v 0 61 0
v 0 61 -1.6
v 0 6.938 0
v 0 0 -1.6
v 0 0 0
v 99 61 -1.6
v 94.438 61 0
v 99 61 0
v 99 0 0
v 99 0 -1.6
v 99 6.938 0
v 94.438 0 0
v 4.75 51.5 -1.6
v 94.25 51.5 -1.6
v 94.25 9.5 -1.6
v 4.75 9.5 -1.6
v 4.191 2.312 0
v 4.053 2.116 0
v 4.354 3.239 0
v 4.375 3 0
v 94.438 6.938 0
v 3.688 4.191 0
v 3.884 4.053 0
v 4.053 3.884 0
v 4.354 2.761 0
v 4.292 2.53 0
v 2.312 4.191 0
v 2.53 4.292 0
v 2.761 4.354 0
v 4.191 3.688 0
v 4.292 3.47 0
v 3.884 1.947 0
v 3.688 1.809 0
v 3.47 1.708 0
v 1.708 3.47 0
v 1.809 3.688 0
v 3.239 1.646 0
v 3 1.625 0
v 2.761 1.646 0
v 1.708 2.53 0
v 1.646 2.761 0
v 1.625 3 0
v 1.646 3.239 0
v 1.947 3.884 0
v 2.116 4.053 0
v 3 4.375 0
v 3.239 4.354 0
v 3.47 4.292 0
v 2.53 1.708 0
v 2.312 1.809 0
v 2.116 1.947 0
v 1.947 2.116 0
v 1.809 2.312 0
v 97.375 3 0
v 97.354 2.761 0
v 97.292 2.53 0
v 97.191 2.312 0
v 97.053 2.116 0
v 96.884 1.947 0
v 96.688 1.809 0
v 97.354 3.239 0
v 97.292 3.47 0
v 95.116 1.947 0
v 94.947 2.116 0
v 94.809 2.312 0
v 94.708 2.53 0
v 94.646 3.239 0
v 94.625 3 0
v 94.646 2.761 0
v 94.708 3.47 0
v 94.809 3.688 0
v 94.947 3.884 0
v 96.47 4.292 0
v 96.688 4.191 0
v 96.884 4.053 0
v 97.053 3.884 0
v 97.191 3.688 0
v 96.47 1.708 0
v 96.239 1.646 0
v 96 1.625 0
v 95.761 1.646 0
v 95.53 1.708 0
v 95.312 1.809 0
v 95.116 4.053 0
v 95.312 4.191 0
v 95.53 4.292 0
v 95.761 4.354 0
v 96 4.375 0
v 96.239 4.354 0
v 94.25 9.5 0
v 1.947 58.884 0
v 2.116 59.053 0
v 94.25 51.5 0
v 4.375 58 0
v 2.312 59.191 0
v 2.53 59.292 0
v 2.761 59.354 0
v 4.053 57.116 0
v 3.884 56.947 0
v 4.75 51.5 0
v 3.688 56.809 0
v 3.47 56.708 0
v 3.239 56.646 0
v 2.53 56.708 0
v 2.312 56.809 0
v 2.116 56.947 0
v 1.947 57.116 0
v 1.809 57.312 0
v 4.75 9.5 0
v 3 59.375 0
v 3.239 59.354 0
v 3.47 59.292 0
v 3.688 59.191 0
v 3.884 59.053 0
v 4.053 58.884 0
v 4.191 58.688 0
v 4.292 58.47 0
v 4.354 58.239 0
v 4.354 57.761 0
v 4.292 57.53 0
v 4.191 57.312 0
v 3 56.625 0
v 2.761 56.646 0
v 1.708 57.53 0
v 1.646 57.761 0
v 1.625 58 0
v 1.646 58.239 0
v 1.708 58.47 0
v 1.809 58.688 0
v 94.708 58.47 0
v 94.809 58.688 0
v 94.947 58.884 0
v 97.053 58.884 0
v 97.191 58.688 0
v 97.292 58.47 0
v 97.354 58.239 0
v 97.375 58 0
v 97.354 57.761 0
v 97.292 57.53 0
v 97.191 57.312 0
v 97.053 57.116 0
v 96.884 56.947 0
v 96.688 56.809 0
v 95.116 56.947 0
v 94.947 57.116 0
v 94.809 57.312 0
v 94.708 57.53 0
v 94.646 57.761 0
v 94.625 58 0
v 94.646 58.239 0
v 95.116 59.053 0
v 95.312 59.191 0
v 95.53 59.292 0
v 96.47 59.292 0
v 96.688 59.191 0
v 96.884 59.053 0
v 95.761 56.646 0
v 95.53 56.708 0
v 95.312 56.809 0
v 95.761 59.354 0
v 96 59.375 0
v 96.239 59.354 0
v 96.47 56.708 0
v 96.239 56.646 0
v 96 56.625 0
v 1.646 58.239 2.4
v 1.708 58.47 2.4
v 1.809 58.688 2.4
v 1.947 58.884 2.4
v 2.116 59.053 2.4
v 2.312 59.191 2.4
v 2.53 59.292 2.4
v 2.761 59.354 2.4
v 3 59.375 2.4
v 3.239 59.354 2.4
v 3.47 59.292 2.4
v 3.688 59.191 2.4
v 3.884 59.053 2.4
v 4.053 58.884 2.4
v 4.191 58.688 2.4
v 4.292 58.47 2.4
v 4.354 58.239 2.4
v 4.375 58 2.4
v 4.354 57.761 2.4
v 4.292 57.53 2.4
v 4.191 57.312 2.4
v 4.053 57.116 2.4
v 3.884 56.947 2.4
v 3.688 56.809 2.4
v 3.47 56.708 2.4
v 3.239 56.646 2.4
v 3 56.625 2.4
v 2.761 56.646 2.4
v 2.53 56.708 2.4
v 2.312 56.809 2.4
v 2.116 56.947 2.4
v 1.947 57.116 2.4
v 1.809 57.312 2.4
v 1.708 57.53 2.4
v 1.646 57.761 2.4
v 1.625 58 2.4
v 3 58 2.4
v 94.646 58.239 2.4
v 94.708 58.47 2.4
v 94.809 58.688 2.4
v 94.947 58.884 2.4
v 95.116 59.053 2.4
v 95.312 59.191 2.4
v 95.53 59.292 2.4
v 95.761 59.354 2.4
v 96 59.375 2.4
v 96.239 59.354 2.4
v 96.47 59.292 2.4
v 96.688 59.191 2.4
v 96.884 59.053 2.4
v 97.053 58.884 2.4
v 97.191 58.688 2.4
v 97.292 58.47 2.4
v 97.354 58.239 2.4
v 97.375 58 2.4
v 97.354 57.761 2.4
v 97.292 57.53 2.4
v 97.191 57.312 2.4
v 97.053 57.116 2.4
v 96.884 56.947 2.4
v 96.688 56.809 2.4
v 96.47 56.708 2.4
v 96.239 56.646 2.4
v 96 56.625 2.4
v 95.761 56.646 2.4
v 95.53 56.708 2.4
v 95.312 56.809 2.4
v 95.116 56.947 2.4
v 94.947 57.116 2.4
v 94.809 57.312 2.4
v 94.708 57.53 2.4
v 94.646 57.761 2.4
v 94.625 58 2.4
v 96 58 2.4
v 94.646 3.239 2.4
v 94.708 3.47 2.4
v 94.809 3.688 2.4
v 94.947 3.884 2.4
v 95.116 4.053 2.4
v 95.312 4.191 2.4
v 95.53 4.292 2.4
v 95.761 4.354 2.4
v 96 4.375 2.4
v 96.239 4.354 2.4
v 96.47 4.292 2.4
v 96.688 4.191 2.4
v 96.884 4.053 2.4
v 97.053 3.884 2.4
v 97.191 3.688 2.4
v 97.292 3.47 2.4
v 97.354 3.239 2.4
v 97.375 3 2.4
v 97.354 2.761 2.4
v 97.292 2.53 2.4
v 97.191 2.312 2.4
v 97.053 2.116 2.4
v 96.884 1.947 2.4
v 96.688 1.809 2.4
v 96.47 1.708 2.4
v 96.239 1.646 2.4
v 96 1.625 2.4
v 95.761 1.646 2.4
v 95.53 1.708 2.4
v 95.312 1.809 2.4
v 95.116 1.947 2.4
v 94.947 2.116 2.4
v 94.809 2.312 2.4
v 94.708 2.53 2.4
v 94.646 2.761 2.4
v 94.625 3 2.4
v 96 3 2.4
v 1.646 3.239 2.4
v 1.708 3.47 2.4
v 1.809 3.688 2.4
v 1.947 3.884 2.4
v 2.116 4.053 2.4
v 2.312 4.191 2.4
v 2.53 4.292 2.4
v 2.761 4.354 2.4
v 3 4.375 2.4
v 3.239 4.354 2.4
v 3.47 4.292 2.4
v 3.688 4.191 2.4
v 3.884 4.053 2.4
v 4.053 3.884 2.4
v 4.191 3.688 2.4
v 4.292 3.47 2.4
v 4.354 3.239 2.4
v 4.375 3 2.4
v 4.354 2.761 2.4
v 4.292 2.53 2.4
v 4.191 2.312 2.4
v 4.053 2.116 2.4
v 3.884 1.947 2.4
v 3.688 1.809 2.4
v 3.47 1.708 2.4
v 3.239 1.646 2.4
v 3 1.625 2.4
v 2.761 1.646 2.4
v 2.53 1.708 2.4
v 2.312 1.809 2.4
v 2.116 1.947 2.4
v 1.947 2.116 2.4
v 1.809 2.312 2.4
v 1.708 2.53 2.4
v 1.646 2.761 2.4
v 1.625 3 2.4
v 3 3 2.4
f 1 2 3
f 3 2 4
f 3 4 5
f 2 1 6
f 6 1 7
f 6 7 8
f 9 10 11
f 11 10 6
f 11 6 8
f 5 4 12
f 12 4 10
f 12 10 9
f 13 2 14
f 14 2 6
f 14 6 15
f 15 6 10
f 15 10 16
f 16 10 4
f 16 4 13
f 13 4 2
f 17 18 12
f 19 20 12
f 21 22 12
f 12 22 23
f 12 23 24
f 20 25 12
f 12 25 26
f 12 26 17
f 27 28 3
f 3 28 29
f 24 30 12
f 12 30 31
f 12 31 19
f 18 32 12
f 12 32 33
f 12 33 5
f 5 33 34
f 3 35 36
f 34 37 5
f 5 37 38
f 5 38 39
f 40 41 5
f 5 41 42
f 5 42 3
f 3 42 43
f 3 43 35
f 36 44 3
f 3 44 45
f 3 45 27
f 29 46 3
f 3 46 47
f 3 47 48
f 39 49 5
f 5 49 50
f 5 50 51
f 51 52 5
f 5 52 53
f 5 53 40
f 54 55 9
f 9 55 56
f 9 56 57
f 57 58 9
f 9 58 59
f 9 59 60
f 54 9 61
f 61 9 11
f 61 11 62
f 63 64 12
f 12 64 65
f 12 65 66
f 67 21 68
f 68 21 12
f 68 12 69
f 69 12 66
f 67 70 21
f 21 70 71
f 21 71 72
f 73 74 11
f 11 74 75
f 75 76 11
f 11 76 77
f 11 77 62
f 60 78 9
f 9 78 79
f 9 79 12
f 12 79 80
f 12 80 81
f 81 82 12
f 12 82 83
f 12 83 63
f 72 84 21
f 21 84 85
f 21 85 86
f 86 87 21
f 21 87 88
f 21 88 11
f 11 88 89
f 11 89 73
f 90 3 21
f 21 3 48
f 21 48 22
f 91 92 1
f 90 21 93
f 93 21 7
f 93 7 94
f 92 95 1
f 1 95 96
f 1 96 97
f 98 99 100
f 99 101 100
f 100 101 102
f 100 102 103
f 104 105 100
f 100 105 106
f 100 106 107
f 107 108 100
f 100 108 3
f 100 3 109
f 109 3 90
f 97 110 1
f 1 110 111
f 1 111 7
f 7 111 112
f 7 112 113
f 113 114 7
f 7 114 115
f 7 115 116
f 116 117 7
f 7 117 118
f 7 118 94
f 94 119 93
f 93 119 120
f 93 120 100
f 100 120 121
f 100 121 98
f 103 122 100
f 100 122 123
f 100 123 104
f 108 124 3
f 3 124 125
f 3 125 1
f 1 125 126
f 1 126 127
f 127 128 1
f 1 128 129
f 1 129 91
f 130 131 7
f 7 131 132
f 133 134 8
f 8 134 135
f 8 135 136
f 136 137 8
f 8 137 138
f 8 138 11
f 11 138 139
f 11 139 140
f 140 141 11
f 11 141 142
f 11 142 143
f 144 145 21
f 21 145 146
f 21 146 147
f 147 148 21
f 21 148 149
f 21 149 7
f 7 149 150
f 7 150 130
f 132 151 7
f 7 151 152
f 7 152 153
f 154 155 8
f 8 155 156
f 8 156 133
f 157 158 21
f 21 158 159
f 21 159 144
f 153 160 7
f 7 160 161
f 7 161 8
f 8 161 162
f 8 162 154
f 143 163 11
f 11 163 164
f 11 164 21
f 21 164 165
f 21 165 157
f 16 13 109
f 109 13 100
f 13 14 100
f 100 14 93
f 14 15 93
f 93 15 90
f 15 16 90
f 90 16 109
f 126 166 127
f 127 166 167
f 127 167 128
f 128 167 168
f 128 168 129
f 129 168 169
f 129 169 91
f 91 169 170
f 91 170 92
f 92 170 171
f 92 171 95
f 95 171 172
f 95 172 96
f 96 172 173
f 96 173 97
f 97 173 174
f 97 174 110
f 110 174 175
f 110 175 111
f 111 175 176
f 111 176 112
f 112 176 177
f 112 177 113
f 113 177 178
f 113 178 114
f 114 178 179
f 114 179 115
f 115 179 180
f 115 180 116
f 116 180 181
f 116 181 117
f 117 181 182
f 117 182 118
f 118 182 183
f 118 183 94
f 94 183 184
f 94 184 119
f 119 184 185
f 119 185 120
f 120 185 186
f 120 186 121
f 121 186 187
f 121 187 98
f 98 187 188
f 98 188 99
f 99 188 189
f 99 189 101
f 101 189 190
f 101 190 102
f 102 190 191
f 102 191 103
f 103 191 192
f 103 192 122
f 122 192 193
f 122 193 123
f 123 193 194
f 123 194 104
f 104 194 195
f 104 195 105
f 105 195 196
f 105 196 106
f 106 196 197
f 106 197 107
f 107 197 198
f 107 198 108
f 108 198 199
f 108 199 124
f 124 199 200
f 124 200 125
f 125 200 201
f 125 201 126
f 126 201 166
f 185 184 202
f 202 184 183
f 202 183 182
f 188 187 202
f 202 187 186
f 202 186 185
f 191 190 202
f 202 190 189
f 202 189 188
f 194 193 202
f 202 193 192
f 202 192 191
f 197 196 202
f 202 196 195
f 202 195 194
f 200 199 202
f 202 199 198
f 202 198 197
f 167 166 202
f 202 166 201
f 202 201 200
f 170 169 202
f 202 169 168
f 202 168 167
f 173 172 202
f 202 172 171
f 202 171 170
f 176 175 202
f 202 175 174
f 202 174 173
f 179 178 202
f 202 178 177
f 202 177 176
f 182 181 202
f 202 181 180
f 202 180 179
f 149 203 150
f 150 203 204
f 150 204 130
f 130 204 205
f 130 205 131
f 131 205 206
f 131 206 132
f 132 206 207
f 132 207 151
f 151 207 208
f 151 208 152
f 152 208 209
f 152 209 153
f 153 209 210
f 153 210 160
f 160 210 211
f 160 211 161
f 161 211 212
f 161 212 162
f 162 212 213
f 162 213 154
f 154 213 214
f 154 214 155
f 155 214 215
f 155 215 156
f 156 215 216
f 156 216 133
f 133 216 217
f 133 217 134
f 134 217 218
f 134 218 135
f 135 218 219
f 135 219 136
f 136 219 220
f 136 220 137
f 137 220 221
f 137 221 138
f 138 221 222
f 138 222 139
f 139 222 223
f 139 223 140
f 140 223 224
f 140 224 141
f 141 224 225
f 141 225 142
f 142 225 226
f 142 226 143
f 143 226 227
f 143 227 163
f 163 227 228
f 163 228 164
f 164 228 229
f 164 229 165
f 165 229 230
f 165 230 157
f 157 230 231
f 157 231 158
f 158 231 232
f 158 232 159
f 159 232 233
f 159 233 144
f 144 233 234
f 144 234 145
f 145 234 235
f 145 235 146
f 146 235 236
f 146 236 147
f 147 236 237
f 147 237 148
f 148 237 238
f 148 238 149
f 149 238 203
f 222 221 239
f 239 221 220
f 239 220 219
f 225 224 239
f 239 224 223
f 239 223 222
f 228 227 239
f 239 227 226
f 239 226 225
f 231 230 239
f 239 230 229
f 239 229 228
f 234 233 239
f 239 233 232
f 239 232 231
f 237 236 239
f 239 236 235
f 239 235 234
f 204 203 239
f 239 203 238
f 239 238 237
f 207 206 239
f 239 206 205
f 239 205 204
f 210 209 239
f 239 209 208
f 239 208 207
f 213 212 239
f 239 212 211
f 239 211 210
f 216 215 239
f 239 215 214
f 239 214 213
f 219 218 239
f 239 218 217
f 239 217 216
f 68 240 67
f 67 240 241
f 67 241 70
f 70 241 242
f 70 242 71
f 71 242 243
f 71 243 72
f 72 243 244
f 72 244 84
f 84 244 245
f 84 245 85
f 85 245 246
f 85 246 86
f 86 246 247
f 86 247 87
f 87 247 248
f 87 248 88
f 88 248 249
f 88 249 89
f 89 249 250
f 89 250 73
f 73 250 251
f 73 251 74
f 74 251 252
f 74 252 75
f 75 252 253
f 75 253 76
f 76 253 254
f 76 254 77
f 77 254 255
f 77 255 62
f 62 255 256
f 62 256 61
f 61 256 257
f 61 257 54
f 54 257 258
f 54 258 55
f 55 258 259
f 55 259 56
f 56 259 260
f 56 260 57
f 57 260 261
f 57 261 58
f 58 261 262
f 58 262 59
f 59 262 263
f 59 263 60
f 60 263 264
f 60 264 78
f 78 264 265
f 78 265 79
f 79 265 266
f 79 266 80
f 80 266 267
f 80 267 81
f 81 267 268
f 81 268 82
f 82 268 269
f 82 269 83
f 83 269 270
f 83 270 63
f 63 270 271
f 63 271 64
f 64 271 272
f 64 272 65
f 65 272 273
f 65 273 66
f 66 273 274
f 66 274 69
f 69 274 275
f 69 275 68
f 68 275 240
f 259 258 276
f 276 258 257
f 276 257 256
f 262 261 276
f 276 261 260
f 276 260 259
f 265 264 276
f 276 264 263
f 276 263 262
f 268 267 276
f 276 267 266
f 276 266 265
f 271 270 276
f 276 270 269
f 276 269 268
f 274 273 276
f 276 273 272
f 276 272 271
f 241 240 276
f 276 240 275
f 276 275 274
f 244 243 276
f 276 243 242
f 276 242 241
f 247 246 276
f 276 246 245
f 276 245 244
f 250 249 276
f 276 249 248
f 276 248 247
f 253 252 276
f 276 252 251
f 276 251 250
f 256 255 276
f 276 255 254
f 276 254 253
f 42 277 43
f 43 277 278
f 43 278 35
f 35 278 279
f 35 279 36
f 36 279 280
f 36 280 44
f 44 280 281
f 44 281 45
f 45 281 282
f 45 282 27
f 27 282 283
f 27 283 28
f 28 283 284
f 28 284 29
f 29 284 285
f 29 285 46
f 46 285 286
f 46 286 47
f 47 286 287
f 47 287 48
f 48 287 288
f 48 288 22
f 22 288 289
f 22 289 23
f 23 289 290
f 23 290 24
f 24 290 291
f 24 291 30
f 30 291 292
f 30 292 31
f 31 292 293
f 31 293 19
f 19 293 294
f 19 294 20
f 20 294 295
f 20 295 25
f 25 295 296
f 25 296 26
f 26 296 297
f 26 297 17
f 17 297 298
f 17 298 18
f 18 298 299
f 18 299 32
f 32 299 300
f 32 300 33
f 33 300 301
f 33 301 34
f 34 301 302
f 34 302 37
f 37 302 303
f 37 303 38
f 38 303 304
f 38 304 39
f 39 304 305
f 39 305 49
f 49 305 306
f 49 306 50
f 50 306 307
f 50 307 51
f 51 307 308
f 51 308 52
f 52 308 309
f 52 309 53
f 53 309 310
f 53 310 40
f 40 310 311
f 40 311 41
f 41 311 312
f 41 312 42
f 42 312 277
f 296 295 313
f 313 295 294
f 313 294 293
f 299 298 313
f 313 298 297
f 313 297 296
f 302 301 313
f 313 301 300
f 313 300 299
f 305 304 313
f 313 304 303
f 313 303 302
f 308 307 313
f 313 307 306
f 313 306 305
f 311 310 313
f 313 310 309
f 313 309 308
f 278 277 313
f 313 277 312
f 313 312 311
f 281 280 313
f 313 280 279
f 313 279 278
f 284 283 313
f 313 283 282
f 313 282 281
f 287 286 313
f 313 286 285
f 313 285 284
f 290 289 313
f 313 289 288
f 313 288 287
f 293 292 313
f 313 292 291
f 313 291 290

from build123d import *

# Parameters (mm, degrees)
SKETCH2_W           = 99
SKETCH2_H           = 61
SKETCH2_W_2         = 89.5
SKETCH2_H_2         = 42
BOSS_EXTRUDE1_DEPTH = 1.6
SKETCH3_R           = 1.375
BOSS_EXTRUDE2_DEPTH = 2.4


with BuildPart() as part:
    # Sketch2 → Boss-Extrude1 (new body)
    with BuildSketch(Plane.XY):
        with Locations((49.5, 30.5)):
            Rectangle(SKETCH2_W, SKETCH2_H)
        with Locations((49.5, 30.5)):
            Rectangle(SKETCH2_W_2, SKETCH2_H_2, mode=Mode.SUBTRACT)
    extrude(amount=-BOSS_EXTRUDE1_DEPTH)

    # Sketch3 → Boss-Extrude2 (add)
    with BuildSketch(Plane.XY):
        with Locations(Location((3, 58, 0), (0, 0, 180))):
            Circle(SKETCH3_R)
        with Locations(Location((96, 58, 0), (0, 0, 180))):
            Circle(SKETCH3_R)
        with Locations(Location((96, 3, 0), (0, 0, 180))):
            Circle(SKETCH3_R)
        with Locations(Location((3, 3, 0), (0, 0, 180))):
            Circle(SKETCH3_R)
    extrude(amount=BOSS_EXTRUDE2_DEPTH)


solid = part.part
